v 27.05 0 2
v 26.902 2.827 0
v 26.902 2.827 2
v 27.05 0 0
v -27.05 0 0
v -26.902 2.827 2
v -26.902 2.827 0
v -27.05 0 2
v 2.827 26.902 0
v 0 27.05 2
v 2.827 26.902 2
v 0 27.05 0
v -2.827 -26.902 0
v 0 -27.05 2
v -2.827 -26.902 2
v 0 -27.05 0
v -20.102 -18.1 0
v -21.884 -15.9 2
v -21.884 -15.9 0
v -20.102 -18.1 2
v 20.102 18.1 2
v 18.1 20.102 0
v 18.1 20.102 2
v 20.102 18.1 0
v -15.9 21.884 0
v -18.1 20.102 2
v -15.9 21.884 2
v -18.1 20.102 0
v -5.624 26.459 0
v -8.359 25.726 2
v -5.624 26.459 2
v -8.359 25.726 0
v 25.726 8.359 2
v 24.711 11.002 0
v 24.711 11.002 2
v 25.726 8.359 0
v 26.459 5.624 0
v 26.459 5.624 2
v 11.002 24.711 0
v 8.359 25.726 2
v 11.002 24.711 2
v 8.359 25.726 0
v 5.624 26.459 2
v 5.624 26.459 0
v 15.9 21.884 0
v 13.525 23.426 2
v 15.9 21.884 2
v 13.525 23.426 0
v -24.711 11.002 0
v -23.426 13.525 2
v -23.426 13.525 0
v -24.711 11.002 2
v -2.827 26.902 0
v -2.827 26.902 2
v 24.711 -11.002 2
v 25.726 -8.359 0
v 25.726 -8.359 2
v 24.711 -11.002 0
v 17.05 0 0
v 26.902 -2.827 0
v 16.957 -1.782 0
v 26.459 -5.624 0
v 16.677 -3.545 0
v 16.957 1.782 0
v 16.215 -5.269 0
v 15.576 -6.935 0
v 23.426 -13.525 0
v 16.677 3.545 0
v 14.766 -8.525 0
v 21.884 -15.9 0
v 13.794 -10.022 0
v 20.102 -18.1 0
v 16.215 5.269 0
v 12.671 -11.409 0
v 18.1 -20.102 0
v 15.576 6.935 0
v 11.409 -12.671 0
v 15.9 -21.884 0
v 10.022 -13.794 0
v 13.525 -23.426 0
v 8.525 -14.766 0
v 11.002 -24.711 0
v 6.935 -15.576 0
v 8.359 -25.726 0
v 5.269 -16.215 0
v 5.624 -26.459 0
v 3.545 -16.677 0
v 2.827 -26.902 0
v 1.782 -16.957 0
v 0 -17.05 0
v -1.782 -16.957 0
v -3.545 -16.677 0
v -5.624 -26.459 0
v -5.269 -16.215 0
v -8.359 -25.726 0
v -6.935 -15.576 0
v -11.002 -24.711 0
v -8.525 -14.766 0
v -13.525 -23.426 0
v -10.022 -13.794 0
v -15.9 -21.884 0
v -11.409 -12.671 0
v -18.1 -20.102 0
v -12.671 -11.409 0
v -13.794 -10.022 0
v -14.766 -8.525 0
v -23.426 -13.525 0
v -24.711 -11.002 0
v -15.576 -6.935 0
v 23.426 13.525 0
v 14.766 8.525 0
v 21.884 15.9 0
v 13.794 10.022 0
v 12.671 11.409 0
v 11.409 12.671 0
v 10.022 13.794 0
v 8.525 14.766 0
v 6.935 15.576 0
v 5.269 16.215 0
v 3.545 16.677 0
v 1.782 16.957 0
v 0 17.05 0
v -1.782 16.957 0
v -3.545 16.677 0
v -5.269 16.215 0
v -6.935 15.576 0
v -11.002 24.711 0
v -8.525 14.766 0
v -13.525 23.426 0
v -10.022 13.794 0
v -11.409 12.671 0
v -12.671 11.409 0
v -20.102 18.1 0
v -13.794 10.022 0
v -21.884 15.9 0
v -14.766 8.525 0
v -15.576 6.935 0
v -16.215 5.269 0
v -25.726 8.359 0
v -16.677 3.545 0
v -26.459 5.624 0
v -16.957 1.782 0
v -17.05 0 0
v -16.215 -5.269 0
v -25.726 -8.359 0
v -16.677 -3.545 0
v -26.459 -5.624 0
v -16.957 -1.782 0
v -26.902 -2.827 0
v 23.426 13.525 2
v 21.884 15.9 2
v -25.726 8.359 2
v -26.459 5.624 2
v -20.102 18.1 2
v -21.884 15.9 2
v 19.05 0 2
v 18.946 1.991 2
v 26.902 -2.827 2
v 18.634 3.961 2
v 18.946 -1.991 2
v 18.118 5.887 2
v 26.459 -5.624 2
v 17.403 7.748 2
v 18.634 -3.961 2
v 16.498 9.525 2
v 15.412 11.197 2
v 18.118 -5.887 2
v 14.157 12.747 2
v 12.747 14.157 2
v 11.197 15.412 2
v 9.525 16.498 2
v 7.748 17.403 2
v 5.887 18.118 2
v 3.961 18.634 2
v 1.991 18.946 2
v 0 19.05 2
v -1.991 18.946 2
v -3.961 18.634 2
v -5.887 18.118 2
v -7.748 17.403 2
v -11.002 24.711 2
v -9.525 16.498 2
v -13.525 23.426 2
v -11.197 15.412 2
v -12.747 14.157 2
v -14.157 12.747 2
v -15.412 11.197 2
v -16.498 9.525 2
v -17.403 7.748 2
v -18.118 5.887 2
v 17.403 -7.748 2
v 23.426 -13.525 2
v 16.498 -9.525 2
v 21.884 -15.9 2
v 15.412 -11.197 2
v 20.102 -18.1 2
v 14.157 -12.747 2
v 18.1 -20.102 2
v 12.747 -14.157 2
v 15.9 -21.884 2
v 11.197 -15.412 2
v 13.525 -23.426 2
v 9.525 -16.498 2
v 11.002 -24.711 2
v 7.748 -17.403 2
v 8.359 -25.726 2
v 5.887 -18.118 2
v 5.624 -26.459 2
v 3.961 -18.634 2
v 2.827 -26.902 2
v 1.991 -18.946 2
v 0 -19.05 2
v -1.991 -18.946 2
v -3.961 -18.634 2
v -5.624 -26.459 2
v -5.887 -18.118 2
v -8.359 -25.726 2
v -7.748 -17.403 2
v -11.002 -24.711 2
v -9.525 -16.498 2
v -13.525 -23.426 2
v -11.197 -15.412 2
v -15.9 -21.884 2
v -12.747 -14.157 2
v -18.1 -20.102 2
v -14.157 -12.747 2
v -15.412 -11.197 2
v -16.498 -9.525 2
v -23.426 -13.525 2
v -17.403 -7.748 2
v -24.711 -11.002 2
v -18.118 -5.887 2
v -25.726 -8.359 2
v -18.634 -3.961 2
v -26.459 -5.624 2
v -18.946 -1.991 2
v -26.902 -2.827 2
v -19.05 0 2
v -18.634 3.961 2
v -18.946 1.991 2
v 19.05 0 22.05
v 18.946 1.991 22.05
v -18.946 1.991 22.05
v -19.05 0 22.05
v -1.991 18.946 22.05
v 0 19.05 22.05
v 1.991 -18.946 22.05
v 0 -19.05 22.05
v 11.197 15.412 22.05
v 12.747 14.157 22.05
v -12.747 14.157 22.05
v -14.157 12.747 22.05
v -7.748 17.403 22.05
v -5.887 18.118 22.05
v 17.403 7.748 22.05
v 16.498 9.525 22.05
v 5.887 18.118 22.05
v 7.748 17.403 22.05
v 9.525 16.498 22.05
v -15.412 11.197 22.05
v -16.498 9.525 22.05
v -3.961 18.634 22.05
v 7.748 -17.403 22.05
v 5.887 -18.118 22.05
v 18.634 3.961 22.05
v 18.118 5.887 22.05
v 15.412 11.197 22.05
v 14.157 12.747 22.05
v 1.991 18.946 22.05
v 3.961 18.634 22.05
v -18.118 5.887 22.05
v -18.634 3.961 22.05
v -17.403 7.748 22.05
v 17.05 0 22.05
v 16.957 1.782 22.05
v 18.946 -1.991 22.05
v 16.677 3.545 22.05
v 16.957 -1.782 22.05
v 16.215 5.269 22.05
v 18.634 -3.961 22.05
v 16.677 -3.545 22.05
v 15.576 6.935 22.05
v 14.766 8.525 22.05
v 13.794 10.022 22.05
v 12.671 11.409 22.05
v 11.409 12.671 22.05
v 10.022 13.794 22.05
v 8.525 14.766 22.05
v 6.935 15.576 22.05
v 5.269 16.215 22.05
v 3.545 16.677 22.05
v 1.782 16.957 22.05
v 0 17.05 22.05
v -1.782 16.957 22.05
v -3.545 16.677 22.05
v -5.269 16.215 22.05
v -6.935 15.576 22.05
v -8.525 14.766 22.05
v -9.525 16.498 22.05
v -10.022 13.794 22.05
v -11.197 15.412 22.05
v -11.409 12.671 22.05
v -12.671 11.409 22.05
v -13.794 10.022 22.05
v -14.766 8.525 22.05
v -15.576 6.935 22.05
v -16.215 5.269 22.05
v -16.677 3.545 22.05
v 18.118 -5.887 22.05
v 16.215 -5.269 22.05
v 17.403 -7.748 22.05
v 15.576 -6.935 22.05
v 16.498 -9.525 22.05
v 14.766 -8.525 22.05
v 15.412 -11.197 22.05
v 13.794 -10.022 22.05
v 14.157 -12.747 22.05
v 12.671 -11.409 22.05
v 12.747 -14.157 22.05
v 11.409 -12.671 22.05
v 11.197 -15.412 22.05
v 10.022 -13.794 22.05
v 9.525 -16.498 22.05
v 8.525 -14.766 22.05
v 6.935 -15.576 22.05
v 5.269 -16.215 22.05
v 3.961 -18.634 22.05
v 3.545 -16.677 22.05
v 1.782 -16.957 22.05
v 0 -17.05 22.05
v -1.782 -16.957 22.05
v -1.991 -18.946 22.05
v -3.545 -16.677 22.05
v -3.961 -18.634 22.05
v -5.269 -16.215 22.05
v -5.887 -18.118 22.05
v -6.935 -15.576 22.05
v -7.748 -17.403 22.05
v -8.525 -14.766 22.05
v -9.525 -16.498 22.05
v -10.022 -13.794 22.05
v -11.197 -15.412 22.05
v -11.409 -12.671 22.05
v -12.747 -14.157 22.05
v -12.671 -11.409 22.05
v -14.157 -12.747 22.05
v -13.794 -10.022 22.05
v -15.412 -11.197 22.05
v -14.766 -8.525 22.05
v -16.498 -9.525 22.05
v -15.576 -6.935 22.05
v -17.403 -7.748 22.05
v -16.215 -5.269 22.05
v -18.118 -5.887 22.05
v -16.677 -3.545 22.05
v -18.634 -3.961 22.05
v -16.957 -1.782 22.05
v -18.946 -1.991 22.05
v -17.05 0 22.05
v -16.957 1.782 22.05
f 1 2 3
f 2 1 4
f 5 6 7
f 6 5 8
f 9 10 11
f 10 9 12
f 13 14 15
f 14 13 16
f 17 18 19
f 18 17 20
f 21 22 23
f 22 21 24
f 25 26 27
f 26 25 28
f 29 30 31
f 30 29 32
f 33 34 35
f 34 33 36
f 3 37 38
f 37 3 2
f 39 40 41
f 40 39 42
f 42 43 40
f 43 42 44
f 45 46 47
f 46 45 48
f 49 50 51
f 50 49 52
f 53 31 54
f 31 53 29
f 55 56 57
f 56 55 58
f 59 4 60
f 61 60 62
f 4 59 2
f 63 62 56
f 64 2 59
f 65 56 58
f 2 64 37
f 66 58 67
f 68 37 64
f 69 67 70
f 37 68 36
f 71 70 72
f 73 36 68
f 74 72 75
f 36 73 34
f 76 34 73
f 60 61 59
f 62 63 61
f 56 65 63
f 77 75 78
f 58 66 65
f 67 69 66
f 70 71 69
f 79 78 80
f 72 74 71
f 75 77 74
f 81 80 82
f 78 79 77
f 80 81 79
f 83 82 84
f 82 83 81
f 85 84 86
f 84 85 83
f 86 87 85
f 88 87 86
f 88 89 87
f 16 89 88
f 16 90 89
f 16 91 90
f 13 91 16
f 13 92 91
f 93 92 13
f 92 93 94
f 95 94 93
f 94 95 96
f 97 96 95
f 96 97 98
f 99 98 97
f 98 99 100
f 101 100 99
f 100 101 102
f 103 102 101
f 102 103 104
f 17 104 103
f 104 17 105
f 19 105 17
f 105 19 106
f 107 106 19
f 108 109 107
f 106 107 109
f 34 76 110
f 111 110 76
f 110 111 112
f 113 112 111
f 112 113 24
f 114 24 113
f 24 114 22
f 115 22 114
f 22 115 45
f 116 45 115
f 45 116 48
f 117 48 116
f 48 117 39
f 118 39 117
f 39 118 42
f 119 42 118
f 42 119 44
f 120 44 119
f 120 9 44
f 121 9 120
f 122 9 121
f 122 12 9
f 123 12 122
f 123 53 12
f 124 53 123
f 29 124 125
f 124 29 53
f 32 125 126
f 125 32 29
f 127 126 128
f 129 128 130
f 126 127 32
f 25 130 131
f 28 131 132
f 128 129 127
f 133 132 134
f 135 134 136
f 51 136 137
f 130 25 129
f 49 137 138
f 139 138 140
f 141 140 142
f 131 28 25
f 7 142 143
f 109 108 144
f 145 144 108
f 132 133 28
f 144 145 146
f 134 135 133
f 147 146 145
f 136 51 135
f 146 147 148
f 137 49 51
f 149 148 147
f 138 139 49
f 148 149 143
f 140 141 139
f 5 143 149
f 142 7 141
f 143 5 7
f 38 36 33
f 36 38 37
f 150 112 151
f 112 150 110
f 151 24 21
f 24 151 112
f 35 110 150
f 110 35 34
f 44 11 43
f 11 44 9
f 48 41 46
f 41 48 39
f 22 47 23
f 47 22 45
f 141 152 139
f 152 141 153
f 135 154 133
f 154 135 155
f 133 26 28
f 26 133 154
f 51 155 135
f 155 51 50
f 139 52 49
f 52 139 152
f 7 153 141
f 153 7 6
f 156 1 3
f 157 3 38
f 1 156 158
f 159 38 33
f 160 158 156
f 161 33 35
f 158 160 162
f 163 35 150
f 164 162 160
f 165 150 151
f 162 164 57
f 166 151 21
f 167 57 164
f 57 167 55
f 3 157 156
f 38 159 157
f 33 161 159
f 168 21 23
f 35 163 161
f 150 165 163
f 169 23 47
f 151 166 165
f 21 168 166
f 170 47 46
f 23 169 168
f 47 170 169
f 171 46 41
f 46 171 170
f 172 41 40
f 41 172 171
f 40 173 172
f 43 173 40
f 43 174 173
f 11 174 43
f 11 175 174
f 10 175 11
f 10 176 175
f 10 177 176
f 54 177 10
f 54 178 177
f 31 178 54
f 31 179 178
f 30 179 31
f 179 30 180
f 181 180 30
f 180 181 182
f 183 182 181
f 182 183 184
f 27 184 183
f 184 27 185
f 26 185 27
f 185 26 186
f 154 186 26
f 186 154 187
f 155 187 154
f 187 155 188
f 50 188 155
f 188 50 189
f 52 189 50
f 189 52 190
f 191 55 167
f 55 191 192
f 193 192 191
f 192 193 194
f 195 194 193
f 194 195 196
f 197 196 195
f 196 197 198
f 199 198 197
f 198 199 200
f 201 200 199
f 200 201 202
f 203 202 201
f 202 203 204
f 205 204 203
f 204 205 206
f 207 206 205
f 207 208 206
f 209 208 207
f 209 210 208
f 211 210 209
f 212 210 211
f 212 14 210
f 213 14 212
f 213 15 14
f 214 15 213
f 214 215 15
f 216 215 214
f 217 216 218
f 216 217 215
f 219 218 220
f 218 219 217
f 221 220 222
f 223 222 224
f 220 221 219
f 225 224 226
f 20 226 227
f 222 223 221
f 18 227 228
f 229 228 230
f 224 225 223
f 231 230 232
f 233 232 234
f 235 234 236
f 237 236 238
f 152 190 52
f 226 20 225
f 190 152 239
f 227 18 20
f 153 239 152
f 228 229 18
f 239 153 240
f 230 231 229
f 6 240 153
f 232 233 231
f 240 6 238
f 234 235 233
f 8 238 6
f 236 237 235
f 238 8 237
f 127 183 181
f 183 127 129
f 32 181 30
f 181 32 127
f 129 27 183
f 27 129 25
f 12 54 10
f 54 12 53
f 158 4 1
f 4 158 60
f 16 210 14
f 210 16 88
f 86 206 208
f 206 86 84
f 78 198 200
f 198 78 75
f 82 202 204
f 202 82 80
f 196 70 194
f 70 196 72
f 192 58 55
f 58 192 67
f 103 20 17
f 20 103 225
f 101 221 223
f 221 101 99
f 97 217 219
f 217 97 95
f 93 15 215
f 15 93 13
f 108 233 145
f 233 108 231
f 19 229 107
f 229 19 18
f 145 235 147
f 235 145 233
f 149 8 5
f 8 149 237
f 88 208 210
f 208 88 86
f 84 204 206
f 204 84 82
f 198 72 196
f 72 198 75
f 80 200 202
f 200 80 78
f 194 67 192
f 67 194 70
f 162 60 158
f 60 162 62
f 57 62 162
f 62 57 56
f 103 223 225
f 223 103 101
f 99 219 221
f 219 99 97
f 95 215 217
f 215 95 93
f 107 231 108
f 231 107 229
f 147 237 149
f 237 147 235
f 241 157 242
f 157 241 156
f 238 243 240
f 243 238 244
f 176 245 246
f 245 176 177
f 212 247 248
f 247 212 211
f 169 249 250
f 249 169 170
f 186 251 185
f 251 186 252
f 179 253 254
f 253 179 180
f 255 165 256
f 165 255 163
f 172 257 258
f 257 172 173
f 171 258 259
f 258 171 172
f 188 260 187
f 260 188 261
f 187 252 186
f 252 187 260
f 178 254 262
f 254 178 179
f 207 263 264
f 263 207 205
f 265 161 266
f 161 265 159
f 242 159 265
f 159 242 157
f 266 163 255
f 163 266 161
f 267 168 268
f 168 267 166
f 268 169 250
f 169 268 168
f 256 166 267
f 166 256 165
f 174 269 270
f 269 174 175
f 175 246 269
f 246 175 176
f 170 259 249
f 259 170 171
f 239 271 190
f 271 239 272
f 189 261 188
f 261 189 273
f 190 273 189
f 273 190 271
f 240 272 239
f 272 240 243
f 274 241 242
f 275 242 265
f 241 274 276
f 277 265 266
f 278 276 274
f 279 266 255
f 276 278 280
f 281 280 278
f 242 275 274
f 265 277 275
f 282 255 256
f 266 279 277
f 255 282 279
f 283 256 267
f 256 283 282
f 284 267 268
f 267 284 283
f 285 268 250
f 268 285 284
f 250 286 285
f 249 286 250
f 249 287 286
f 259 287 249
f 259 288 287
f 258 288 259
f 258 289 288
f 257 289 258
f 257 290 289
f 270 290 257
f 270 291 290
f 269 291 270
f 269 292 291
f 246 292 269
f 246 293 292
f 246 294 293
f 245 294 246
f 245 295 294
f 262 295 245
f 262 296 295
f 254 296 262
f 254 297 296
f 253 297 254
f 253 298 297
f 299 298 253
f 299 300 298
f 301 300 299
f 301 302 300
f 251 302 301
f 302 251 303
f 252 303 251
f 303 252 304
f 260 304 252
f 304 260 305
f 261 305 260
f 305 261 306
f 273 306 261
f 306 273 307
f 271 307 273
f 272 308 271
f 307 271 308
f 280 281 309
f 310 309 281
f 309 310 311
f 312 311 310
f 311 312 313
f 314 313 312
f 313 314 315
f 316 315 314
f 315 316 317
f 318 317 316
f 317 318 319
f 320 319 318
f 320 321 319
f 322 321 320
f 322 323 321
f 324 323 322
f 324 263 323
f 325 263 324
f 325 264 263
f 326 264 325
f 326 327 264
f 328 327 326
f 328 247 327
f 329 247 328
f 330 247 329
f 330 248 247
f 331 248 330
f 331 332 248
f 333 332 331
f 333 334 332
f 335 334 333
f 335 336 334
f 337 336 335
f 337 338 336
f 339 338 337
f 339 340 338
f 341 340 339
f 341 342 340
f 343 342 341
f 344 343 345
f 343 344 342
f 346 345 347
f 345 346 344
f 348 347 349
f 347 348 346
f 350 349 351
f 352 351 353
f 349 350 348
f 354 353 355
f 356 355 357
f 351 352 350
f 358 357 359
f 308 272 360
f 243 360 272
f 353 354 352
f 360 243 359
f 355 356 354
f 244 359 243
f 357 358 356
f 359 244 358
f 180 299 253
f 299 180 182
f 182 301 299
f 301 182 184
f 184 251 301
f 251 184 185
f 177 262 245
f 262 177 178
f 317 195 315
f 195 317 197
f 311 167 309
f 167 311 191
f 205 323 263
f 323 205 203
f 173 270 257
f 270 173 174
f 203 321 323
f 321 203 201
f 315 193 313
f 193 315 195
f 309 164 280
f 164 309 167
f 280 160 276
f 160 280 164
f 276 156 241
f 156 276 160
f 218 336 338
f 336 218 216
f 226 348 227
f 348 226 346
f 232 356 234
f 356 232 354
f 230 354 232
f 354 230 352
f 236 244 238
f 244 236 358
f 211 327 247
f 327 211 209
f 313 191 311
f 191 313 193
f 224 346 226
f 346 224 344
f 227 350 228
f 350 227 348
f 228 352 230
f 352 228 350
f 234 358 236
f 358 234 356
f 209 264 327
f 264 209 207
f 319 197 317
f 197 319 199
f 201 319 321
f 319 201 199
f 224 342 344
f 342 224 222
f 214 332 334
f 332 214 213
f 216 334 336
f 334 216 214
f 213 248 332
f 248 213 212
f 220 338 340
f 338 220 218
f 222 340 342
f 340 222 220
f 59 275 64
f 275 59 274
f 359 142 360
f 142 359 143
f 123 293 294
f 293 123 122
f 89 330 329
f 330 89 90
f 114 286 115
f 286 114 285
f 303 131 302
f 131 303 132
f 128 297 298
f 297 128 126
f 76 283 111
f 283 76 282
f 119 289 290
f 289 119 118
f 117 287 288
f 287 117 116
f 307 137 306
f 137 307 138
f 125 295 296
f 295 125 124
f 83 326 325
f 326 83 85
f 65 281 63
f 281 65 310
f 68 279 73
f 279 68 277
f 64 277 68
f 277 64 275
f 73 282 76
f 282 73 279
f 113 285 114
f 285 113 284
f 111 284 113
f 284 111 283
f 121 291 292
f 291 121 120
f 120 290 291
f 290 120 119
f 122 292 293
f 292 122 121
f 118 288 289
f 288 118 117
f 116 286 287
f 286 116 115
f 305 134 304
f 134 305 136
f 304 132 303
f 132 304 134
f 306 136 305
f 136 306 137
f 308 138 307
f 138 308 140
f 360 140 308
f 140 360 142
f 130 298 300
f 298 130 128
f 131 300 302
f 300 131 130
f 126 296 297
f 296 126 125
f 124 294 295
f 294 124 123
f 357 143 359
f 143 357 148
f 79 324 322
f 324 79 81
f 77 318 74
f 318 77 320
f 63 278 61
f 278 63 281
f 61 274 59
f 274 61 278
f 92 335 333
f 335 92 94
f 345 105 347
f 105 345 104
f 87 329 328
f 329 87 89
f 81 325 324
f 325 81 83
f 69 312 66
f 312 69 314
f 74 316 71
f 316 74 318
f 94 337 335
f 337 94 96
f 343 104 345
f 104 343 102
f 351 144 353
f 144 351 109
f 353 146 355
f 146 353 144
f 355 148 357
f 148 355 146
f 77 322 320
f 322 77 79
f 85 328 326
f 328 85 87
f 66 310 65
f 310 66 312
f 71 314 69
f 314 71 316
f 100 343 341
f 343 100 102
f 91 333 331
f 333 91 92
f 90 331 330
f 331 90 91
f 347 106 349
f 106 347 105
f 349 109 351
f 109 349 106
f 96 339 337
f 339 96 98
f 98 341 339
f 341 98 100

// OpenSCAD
difference(){
	union() {
		union() {
			cylinder($fn = 60, h = 2, r = 27.0500000000);
			cylinder($fn = 60, h = 22.0500000000, r = 19.0500000000);
		}
	}
	/* Holes Below*/
	union(){
		union(){
			translate(v = [0, 0, -1]) {
				cylinder($fn = 60, h = 24.0500000000, r = 17.0500000000);
			}
		}
	} /* End Holes */ 
}
